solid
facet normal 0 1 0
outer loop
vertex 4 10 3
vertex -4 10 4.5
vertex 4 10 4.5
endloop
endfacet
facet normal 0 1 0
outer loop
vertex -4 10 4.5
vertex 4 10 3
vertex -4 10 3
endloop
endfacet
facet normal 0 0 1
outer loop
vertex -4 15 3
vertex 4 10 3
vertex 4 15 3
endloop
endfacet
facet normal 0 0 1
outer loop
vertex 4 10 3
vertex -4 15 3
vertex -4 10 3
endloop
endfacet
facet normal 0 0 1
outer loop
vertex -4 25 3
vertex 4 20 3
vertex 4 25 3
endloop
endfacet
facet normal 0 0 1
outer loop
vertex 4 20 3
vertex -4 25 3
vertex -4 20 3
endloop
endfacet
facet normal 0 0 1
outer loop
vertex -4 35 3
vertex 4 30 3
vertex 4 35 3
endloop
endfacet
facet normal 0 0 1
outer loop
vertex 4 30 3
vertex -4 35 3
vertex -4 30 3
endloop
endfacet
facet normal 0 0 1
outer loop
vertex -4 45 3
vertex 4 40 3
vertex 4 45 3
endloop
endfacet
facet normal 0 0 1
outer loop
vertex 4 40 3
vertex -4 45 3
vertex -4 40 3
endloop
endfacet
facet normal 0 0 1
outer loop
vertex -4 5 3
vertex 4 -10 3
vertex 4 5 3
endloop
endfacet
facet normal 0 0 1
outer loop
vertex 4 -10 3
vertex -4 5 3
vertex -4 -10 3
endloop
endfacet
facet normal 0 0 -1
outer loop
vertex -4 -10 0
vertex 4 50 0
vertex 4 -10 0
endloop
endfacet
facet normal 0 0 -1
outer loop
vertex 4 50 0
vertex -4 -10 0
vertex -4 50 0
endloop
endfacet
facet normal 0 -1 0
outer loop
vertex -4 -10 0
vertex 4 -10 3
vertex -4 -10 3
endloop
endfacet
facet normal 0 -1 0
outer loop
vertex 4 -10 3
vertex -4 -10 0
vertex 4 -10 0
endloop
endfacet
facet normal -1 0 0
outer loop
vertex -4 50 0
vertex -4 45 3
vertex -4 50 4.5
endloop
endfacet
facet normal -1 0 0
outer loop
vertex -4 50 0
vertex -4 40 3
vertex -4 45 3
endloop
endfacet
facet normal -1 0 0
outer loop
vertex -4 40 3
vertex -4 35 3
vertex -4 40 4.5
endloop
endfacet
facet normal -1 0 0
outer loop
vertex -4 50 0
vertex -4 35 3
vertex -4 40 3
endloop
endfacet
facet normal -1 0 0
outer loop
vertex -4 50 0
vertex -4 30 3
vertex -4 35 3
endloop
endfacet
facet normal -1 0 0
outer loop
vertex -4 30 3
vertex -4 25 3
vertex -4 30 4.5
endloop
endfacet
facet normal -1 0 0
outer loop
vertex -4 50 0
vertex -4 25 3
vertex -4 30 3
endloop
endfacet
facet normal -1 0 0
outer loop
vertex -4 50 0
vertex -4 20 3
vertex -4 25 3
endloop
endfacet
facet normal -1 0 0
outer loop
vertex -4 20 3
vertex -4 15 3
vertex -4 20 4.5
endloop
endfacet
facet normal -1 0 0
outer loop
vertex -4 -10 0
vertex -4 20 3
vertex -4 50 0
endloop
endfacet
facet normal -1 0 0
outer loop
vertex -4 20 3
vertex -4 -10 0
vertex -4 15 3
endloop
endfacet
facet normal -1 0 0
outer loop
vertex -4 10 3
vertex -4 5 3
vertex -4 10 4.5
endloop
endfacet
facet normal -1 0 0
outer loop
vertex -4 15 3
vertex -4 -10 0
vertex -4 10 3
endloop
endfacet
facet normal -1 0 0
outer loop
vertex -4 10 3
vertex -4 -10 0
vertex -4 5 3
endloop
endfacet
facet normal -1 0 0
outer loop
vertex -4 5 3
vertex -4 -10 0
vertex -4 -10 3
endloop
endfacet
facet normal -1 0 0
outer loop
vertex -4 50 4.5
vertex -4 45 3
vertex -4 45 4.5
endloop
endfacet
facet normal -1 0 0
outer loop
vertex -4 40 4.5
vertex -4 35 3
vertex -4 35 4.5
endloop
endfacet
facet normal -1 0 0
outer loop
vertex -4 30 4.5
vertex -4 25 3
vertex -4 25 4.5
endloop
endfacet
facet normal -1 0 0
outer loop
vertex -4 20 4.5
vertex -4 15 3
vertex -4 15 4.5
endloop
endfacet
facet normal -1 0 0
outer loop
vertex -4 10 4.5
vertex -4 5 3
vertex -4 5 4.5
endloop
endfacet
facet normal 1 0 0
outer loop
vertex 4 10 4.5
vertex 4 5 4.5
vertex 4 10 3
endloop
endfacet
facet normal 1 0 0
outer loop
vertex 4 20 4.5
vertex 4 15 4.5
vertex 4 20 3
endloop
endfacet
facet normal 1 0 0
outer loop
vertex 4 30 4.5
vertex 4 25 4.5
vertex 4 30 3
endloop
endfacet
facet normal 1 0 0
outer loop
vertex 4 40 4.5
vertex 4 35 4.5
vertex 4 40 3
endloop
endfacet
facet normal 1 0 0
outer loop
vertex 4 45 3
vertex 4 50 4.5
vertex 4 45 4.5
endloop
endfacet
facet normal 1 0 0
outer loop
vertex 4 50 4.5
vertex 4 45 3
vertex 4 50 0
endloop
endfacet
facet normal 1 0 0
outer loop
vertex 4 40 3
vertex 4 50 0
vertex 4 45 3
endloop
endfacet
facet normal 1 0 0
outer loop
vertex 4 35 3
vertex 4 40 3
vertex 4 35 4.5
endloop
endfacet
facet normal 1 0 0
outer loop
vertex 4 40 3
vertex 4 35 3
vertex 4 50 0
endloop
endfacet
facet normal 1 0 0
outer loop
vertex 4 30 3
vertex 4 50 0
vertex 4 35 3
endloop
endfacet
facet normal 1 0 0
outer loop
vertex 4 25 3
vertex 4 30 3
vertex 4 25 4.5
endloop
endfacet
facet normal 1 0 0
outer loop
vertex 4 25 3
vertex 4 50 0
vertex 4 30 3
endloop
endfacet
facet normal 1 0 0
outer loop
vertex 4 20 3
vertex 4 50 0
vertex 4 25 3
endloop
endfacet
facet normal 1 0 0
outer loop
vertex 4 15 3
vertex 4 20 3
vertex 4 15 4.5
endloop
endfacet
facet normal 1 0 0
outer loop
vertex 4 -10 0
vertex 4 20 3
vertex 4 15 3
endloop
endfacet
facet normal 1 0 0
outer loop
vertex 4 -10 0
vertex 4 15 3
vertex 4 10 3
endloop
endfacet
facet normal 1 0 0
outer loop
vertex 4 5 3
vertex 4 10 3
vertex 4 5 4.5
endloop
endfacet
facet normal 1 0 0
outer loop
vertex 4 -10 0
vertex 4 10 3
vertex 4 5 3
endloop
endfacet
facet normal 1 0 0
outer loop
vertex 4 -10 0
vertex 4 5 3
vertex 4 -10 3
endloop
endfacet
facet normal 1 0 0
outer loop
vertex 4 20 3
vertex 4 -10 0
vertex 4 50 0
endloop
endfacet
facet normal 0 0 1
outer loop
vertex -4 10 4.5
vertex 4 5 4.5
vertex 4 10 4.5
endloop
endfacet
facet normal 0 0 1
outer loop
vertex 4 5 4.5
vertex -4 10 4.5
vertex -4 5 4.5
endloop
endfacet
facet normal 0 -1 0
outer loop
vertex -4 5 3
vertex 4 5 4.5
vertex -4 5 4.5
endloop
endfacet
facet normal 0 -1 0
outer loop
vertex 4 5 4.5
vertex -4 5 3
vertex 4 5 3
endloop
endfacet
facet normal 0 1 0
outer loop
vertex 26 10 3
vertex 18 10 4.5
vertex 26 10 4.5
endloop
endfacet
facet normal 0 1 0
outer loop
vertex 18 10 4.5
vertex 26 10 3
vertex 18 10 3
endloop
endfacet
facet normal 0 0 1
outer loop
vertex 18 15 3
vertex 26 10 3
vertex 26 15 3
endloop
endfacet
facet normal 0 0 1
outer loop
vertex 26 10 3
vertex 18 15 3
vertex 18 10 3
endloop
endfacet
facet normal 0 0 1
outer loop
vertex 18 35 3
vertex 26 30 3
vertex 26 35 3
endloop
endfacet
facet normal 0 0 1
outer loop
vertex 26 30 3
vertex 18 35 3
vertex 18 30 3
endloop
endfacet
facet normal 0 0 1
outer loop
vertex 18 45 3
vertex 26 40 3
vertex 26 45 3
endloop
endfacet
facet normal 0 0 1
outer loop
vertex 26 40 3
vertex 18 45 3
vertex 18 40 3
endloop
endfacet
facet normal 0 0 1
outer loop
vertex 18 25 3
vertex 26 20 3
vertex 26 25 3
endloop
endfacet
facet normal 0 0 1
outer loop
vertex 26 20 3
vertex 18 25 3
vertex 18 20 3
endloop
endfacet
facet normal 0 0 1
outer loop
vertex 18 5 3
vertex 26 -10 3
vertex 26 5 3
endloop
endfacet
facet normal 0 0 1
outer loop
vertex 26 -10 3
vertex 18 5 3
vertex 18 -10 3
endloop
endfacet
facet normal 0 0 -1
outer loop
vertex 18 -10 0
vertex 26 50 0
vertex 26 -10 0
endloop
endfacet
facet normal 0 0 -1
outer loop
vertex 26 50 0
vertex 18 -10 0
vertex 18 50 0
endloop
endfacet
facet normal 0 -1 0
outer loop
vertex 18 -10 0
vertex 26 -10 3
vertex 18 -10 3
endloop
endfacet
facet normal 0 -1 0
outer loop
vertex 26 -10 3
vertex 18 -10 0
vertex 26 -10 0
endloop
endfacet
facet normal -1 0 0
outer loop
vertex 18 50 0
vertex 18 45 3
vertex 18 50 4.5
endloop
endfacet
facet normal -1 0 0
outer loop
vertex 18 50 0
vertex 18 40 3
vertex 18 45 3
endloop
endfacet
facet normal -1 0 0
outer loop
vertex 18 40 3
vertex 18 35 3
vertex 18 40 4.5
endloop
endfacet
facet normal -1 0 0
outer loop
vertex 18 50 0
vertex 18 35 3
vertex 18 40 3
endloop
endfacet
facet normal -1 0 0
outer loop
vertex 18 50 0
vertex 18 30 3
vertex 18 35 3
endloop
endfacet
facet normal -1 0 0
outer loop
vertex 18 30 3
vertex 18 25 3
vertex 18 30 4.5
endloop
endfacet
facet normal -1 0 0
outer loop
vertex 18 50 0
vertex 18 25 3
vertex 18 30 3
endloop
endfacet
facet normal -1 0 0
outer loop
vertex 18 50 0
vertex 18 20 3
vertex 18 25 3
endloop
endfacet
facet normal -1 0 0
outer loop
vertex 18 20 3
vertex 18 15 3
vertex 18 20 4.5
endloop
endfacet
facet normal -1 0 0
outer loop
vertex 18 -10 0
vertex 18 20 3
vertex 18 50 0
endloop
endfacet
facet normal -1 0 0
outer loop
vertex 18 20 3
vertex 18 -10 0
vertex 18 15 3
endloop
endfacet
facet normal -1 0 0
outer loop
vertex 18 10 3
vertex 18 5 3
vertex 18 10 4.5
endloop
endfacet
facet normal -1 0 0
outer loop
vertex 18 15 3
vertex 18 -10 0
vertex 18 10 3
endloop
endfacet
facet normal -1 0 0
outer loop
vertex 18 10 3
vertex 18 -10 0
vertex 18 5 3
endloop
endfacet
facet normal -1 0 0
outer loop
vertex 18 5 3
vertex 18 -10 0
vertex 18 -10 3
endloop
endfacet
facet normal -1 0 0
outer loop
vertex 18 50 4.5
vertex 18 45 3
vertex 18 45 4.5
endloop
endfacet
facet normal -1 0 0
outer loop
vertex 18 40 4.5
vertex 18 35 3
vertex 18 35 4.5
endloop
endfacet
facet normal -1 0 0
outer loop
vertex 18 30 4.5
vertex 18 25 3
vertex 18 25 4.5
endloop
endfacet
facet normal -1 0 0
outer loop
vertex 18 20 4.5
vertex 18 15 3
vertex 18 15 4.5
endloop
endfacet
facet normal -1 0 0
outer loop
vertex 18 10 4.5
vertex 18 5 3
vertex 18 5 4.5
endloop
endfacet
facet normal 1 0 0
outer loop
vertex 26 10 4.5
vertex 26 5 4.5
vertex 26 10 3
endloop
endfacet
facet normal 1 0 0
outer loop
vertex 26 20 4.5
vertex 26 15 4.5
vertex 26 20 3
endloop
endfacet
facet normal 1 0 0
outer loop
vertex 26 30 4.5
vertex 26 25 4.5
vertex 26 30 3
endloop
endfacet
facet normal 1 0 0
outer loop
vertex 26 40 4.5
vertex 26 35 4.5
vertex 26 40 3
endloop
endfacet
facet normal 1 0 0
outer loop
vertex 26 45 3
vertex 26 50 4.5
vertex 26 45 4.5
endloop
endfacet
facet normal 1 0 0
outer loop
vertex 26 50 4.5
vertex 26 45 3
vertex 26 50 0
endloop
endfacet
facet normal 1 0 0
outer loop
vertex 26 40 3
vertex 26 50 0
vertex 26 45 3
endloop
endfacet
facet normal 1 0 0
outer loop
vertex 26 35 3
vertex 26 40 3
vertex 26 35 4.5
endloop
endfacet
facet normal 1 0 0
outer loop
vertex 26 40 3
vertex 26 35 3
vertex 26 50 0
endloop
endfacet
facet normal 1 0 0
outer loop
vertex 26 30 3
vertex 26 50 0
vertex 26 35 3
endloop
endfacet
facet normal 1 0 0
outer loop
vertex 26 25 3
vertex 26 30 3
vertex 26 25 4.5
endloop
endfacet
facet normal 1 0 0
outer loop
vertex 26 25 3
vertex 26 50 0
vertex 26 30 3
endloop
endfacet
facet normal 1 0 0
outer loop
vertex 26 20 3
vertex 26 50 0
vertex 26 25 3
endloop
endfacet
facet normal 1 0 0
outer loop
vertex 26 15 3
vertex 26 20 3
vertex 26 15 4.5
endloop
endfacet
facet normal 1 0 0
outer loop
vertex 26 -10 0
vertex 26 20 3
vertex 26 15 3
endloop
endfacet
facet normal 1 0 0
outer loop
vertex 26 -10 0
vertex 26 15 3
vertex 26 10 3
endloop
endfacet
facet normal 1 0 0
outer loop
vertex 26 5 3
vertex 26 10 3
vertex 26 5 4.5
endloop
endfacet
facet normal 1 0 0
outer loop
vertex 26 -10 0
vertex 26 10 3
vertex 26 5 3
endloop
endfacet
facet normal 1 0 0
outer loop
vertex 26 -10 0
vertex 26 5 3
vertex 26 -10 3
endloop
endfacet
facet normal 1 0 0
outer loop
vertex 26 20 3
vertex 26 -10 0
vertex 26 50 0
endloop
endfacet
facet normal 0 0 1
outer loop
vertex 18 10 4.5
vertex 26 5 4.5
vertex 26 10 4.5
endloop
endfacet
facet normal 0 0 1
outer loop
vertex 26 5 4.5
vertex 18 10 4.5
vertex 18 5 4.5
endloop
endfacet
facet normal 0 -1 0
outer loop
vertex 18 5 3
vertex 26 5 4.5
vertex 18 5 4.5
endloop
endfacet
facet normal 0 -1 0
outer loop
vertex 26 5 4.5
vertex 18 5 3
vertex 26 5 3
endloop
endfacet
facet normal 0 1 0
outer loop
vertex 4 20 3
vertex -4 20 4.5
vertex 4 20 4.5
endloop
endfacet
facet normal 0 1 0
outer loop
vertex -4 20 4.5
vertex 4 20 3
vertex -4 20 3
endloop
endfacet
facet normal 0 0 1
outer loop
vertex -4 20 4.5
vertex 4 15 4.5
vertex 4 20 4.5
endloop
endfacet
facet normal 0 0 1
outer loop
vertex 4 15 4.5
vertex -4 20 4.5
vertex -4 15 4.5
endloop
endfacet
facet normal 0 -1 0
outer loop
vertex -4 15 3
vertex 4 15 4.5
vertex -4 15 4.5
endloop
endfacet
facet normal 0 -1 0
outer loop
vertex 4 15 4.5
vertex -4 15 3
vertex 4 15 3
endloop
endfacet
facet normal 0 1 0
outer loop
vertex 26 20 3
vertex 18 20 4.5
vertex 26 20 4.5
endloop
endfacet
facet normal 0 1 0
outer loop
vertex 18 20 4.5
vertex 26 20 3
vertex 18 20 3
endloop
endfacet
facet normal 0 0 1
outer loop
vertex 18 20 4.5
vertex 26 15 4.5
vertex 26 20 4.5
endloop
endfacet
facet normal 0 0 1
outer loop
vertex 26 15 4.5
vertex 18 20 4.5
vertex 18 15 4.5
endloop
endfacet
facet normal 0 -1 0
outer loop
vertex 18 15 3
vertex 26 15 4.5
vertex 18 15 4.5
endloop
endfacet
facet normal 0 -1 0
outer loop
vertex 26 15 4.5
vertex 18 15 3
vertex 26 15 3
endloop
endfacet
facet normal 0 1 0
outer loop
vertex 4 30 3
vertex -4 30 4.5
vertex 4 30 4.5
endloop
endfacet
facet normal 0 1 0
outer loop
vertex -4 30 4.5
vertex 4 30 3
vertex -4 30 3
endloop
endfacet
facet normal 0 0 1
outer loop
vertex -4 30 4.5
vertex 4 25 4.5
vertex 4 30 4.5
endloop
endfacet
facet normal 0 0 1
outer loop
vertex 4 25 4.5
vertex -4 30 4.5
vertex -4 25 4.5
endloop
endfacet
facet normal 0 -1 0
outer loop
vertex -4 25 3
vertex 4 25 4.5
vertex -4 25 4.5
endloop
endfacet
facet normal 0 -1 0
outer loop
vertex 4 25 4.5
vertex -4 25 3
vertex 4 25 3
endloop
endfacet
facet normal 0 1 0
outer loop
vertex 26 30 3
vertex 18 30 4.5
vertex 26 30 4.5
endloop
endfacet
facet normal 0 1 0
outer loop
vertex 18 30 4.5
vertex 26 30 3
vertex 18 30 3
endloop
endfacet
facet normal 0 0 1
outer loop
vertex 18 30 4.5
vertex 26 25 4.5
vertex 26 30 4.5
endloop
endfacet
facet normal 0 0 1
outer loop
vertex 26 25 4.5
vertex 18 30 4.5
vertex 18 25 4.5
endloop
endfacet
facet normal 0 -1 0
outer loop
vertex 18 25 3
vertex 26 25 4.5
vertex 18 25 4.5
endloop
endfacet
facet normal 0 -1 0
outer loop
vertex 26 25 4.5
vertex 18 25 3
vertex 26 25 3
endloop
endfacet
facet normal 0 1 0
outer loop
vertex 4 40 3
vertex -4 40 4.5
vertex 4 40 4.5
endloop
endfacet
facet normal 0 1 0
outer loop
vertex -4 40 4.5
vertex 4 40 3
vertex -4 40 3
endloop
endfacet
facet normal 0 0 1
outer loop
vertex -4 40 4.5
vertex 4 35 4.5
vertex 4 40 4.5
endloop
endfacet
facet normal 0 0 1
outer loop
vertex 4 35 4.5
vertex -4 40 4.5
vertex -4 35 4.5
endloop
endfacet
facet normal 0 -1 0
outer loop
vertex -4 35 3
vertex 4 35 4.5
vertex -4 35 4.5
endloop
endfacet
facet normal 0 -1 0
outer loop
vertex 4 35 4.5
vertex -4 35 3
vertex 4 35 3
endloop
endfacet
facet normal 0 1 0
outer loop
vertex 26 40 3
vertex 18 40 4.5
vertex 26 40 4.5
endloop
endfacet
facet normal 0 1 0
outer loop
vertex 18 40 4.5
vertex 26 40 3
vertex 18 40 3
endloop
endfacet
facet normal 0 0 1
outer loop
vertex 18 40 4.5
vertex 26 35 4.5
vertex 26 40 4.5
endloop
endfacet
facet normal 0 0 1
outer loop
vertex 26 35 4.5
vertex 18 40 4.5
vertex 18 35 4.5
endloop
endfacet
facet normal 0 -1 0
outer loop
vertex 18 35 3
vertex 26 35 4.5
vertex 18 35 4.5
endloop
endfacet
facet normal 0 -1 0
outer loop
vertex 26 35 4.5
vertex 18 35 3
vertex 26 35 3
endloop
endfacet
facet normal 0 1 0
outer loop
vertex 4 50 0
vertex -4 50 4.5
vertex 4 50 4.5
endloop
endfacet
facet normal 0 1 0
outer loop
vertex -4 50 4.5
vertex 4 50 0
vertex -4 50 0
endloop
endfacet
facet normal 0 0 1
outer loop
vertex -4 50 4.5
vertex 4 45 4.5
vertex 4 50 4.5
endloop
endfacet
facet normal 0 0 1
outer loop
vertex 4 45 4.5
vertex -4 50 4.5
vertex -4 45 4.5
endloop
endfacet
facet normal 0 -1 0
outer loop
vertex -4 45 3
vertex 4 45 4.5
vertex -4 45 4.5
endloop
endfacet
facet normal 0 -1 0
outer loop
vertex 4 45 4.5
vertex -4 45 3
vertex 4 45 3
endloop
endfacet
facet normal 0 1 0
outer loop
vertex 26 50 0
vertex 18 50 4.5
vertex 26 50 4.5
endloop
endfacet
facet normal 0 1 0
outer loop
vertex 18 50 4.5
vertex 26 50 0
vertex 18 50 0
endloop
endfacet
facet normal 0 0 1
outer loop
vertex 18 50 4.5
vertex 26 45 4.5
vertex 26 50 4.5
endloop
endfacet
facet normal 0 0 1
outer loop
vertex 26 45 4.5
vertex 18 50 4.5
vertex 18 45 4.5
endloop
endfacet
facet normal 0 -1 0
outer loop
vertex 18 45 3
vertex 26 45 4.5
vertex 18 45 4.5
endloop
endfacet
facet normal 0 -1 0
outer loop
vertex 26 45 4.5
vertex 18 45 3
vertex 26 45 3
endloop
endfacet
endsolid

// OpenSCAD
// clip.scad
// 卡扣舌单独零件（可换、可试不同厚度）
// 尺寸：8mm 宽 × 20mm 长 × 3mm 厚，末端有 1.5mm 凸点做卡扣
// 一版打 10 个（render.sh 输出 clip.stl 是 10 个并排版，方便一次性打印）

// ============ 参数 ============
clip_w   = 8;     // 宽 (mm) — 与面框卡扣槽宽一致
clip_l   = 20;    // 长 (mm) — 略长于槽长 15，留 5mm 做卡扣头
clip_t   = 3;     // 厚 (mm) — 与面框卡扣槽深一致
hook_l   = 5;     // 卡扣头长（在末端）
hook_h   = 1.5;   // 卡扣头凸出高（在 clip_t 方向之外）

copies   = 10;    // 一版打 10 个
gap_x    = 2;     // 个体间隔
gap_y    = 2;

$fn = 32;

module clip_single() {
    union() {
        // 主体
        translate([0, 0, clip_t / 2])
            cube([clip_l, clip_w, clip_t], center = true);

        // 末端卡扣凸点（位于 +X 末端，向 +Z 凸 hook_h）
        translate([clip_l / 2 - hook_l / 2, 0, clip_t + hook_h / 2])
            cube([hook_l, clip_w, hook_h], center = true);
    }
}

// 把单个旋转 90°，让它"短边 20 沿 X、长边 8 沿 Y"（bbox 20×8）
module clip_single_rot() {
    rotate([0, 0, 90]) clip_single();
}

// 排列 10 个：2 列（沿 X，pitch=clip_l+gap=22） × 5 行（沿 Y，pitch=clip_w+gap=10）
// bbox ≈ 42 × 48 × 4.5 → 最长边 48mm
module clip_batch() {
    pitch_x = clip_l + gap_x;   // 22
    pitch_y = clip_w + gap_y;   // 10
    for (i = [0:copies - 1]) {
        cx = (i % 2) * pitch_x;
        cy = floor(i / 2) * pitch_y;
        translate([cx, cy, 0]) clip_single_rot();
    }
}

clip_batch();
